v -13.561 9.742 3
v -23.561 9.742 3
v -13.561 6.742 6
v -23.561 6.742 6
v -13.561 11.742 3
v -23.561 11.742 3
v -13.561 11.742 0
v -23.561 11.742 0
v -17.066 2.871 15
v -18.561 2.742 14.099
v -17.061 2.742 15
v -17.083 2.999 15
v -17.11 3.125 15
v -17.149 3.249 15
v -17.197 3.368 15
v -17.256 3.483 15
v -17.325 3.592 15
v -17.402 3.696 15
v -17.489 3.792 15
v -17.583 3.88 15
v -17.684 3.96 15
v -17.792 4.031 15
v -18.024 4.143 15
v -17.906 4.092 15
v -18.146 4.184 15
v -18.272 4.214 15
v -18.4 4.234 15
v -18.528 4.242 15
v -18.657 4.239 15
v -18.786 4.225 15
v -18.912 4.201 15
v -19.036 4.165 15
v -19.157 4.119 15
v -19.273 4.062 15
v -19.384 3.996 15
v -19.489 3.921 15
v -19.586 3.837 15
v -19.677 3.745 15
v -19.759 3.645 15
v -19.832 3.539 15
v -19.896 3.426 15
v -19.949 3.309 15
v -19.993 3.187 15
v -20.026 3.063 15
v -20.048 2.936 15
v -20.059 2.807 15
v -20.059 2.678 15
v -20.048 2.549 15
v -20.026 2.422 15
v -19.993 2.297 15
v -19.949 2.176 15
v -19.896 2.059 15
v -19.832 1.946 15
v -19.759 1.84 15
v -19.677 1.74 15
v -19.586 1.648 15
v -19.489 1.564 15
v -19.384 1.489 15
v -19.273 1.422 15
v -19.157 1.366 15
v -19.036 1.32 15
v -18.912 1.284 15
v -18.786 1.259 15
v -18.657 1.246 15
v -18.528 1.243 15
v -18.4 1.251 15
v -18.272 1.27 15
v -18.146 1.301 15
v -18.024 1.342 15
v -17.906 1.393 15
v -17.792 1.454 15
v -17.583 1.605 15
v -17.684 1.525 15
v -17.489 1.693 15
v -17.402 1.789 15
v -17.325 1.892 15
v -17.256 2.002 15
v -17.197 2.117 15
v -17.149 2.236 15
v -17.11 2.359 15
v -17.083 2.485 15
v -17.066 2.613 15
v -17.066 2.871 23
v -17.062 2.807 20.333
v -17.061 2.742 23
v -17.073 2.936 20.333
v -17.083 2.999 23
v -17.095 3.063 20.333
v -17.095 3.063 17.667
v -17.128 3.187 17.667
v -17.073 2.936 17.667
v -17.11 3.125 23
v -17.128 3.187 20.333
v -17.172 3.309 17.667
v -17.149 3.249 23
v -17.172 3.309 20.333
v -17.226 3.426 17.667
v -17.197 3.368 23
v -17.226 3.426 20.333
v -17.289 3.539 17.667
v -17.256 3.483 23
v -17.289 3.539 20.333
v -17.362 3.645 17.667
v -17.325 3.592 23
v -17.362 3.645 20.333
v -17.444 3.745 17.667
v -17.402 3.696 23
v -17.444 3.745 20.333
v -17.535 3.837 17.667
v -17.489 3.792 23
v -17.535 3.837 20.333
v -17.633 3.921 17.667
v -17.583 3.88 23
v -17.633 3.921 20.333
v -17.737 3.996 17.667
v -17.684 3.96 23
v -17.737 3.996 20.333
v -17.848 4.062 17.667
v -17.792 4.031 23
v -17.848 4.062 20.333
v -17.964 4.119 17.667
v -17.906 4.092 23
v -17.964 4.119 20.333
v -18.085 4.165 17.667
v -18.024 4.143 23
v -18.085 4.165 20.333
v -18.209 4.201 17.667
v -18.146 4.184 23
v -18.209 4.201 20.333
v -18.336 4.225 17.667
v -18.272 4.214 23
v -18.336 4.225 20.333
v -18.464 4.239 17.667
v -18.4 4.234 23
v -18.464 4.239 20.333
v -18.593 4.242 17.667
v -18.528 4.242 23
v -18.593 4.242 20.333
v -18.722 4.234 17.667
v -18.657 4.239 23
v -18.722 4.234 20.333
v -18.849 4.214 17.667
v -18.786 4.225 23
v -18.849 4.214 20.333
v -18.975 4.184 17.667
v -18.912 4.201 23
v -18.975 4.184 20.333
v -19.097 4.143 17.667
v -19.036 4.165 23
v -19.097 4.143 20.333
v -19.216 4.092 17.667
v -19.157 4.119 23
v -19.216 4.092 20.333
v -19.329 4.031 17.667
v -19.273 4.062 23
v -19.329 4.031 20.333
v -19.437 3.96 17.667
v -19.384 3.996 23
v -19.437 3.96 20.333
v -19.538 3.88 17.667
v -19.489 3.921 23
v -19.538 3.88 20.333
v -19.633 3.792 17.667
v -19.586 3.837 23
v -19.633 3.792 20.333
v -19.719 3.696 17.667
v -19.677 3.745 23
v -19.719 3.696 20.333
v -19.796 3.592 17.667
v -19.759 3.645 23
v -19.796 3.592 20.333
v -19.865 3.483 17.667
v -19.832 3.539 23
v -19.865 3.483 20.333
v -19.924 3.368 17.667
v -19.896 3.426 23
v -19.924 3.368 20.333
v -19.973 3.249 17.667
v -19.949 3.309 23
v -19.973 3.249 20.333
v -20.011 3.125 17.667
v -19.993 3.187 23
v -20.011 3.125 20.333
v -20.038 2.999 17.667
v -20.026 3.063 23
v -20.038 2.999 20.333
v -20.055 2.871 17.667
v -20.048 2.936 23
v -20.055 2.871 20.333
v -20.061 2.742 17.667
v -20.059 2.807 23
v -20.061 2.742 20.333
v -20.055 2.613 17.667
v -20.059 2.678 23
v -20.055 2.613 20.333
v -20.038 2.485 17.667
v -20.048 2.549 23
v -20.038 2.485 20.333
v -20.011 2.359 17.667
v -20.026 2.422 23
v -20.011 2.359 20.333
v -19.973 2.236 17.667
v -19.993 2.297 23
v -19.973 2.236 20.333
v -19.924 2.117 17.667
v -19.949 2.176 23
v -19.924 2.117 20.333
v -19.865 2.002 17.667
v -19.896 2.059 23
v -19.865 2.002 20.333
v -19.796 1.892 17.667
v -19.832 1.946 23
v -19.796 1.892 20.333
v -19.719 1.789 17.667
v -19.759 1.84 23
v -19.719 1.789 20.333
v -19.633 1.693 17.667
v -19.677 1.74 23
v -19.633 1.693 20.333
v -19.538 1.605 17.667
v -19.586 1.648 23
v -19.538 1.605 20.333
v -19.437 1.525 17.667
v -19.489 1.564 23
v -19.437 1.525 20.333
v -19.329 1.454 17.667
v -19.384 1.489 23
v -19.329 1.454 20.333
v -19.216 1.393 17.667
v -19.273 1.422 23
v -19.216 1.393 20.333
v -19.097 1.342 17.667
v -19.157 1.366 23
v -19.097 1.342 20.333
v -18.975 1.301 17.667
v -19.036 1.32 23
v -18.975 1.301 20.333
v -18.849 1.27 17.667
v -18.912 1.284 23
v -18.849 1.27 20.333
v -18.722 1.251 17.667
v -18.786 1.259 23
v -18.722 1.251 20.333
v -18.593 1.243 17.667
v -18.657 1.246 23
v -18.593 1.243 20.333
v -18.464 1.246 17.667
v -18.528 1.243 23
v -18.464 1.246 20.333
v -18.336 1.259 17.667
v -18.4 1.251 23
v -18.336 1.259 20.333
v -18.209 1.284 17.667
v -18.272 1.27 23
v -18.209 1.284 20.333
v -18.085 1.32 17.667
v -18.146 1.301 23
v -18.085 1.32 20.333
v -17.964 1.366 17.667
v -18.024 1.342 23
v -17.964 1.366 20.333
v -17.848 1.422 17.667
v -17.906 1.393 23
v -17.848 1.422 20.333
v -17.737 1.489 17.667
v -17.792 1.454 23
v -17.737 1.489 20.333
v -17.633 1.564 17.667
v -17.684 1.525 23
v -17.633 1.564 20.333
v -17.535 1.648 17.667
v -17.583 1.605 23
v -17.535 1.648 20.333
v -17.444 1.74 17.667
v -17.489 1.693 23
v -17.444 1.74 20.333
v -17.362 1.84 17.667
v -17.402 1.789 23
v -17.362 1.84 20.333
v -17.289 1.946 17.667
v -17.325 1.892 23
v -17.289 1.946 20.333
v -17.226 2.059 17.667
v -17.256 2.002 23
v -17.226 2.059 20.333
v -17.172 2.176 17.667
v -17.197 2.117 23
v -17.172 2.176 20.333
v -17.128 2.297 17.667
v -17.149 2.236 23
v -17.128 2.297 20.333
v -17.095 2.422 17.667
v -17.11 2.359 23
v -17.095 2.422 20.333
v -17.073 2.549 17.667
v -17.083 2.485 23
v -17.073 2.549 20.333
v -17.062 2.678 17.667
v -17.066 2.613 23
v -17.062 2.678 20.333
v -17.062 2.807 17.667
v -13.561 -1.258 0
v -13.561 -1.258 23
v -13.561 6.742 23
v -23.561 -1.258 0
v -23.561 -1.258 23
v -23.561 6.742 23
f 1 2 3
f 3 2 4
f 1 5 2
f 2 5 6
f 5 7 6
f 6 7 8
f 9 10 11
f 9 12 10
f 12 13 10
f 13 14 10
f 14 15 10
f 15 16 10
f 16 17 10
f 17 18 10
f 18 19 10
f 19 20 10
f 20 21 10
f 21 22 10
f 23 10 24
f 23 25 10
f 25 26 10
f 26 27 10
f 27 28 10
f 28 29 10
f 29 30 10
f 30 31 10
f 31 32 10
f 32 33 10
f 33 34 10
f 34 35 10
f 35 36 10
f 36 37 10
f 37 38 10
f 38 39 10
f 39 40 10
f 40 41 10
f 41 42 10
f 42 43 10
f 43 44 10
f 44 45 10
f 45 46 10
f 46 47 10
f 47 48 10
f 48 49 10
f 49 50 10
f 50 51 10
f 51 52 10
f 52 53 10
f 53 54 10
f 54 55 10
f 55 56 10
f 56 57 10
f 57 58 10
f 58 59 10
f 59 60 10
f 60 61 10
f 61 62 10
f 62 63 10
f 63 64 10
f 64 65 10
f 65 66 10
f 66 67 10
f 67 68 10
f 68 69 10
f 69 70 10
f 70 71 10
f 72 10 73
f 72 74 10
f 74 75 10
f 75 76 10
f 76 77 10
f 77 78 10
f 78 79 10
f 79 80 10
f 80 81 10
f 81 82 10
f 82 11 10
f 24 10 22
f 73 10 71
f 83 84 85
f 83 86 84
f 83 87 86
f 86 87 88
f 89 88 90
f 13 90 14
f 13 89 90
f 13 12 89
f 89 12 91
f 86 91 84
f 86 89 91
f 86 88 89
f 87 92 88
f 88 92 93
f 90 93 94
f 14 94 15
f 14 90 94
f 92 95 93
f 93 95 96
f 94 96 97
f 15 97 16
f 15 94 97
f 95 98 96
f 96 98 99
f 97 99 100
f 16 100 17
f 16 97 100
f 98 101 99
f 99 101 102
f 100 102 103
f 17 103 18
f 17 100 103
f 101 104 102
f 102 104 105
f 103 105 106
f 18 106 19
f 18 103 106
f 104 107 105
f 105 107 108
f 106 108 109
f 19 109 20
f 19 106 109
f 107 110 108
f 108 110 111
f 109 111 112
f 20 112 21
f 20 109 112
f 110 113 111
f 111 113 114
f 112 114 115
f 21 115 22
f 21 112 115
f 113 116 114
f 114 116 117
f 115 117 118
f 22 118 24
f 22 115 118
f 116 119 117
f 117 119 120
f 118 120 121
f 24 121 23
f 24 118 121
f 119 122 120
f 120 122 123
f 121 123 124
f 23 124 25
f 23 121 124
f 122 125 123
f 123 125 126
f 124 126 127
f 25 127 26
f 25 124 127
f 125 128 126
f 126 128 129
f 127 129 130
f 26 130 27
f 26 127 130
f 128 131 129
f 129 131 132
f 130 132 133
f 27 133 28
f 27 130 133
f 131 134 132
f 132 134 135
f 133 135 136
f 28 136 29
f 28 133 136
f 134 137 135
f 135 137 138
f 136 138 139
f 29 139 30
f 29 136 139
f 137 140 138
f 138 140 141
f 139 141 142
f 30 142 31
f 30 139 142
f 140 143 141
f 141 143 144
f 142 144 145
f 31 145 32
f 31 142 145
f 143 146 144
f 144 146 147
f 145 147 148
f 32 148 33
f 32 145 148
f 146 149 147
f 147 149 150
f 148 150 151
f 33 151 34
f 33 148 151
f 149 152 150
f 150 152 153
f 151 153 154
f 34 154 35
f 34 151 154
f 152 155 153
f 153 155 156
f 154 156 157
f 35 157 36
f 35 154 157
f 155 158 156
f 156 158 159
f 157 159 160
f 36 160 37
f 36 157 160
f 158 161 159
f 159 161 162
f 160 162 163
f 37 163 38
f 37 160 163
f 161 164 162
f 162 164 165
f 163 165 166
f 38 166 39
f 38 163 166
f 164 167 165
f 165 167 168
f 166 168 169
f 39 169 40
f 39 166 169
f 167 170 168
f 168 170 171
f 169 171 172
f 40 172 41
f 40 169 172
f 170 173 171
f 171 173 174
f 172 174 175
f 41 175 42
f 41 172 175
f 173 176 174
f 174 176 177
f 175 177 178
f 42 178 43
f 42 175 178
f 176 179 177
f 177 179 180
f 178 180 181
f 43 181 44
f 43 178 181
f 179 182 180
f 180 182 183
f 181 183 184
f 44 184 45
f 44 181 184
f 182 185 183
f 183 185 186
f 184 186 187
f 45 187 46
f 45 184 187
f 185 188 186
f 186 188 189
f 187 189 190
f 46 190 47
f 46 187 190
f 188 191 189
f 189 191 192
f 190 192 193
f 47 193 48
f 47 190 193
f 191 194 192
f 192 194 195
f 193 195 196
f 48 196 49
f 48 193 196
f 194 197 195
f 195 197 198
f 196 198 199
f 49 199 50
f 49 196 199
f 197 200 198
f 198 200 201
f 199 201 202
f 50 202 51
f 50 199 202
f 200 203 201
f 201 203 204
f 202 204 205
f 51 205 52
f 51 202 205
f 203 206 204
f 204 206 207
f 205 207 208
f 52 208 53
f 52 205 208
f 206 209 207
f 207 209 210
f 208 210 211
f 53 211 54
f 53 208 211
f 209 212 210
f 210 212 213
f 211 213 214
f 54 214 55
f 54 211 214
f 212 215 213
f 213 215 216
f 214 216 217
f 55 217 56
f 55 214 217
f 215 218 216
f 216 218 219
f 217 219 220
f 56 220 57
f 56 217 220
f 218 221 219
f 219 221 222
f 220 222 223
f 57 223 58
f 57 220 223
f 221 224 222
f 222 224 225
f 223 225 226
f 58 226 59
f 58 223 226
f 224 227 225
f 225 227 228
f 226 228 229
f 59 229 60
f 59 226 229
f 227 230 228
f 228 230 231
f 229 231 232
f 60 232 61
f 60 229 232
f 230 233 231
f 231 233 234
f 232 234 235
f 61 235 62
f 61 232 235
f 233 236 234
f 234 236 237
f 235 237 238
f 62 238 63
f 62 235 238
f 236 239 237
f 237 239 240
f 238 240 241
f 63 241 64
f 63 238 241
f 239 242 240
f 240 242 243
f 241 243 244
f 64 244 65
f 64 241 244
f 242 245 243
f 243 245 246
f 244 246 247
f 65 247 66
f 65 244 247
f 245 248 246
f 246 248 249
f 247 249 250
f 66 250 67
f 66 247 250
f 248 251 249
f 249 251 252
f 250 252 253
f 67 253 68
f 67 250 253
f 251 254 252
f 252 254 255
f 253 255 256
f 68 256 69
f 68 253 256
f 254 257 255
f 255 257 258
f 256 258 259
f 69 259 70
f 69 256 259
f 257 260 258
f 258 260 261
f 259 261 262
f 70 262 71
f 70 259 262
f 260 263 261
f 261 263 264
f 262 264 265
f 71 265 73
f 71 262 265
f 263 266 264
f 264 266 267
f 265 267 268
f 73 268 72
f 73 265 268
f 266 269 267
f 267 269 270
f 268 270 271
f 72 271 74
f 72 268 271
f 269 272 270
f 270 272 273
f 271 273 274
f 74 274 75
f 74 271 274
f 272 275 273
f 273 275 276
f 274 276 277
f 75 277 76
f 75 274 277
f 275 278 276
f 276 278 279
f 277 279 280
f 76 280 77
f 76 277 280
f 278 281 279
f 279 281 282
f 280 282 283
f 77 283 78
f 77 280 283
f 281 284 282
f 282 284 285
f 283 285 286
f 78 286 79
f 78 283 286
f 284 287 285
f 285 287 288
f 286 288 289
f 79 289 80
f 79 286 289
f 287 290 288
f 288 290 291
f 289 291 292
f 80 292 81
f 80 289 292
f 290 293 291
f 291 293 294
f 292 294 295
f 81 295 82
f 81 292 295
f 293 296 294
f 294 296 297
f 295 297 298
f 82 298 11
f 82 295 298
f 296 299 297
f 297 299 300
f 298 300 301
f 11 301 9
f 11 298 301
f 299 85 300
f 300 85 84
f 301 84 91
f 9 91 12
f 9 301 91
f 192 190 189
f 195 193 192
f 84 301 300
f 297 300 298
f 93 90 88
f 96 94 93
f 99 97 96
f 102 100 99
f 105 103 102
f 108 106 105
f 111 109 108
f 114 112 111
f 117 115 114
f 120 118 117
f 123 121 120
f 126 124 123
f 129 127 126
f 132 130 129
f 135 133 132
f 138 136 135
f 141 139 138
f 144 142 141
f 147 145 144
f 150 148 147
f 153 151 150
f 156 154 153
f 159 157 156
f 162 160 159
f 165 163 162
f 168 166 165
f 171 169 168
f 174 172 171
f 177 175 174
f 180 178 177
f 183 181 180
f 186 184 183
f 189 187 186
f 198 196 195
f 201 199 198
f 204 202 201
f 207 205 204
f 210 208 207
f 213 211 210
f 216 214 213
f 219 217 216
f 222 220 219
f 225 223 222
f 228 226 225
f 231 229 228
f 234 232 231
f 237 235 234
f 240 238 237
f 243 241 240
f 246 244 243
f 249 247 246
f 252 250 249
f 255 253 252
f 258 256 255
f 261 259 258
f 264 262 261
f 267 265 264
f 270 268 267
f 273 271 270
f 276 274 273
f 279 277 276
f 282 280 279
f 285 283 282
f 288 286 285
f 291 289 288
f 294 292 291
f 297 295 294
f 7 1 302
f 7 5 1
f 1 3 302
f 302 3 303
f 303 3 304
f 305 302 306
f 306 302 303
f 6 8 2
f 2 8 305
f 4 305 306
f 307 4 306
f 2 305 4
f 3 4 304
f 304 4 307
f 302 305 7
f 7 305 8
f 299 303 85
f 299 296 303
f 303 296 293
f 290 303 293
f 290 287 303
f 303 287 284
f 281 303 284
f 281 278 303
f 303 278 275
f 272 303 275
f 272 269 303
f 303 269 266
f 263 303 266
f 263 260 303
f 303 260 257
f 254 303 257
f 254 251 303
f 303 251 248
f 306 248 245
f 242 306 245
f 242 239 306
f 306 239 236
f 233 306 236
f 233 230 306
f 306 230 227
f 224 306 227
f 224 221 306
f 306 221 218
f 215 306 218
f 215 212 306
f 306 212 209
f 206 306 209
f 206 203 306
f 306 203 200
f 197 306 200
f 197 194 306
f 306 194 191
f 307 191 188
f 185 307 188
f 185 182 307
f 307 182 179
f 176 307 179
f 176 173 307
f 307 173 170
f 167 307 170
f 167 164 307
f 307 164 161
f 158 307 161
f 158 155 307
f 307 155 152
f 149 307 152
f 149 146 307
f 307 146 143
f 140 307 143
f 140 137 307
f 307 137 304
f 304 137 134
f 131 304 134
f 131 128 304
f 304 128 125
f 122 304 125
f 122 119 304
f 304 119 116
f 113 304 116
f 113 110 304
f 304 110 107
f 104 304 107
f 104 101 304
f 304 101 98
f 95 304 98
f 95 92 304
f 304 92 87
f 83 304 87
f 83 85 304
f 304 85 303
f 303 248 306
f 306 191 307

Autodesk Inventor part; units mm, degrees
ref_plane "YZ Plane" through (0, 0, 0) normal (1, 0, 0) x (0, 1, 0)
ref_plane "XZ Plane" through (0, 0, 0) normal (0, 1, 0) x (-1, 0, 0)
ref_plane "XY Plane" through (0, 0, 0) normal (0, 0, 1) x (1, 0, 0)
sketch "Sketch1" plane through (0, 0, 0) normal (0, 0, 1) x (1, 0, 0)
  line L0 (-23.5606, 6.7424) -> (-13.5606, 6.7424)
  line L1 (-13.5606, 6.7424) -> (-13.5606, -1.2576)
  line L2 (-13.5606, -1.2576) -> (-23.5606, -1.2576)
  line L3 (-23.5606, -1.2576) -> (-23.5606, 6.7424)
  point P0 (0, 0)
  dimension "d0" = 10
  dimension "d1" = 8
extrude "Extrusion1" add sketch "Sketch1" along normal blind 23
sketch "Sketch2" plane through (0, 0, 23) normal (0, 0, 1) x (1, 0, 0)
  line L0 (-23.5606, 6.7424) -> (-23.5606, -1.2576) projected
  point P0 (0, 0)
  point P1 (-18.5606, 2.7424)
  dimension "d4" = 5
hole "Hole1" at (-18.5606, 2.7424, 23) direction (0, 0, -1) diameter 3 depth 8 tip angle 118
sketch "Sketch3" plane through (-13.5606, -1.2576, 0) normal (1, 0, 0) x (0, 0, -1)
  line L0 (0, 8) -> (-3, 8)
  line L1 (-3, 8) -> (-3, 13)
  line L2 (-3, 13) -> (0, 13)
  line L3 (0, 13) -> (0, 8)
  line L4 (0, 0) -> (-23, 0) projected
  point P0 (0, 1.2576)
  dimension "d12" = 13
  dimension "d13" = 3
extrude "Extrusion2" add sketch "Sketch3" against normal blind 10
chamfer "Chamfer1" distance 3 angle 45 1 edges at (-18.5606, 6.7424, 3)
properties part number "ArOZ Portable Mount"
